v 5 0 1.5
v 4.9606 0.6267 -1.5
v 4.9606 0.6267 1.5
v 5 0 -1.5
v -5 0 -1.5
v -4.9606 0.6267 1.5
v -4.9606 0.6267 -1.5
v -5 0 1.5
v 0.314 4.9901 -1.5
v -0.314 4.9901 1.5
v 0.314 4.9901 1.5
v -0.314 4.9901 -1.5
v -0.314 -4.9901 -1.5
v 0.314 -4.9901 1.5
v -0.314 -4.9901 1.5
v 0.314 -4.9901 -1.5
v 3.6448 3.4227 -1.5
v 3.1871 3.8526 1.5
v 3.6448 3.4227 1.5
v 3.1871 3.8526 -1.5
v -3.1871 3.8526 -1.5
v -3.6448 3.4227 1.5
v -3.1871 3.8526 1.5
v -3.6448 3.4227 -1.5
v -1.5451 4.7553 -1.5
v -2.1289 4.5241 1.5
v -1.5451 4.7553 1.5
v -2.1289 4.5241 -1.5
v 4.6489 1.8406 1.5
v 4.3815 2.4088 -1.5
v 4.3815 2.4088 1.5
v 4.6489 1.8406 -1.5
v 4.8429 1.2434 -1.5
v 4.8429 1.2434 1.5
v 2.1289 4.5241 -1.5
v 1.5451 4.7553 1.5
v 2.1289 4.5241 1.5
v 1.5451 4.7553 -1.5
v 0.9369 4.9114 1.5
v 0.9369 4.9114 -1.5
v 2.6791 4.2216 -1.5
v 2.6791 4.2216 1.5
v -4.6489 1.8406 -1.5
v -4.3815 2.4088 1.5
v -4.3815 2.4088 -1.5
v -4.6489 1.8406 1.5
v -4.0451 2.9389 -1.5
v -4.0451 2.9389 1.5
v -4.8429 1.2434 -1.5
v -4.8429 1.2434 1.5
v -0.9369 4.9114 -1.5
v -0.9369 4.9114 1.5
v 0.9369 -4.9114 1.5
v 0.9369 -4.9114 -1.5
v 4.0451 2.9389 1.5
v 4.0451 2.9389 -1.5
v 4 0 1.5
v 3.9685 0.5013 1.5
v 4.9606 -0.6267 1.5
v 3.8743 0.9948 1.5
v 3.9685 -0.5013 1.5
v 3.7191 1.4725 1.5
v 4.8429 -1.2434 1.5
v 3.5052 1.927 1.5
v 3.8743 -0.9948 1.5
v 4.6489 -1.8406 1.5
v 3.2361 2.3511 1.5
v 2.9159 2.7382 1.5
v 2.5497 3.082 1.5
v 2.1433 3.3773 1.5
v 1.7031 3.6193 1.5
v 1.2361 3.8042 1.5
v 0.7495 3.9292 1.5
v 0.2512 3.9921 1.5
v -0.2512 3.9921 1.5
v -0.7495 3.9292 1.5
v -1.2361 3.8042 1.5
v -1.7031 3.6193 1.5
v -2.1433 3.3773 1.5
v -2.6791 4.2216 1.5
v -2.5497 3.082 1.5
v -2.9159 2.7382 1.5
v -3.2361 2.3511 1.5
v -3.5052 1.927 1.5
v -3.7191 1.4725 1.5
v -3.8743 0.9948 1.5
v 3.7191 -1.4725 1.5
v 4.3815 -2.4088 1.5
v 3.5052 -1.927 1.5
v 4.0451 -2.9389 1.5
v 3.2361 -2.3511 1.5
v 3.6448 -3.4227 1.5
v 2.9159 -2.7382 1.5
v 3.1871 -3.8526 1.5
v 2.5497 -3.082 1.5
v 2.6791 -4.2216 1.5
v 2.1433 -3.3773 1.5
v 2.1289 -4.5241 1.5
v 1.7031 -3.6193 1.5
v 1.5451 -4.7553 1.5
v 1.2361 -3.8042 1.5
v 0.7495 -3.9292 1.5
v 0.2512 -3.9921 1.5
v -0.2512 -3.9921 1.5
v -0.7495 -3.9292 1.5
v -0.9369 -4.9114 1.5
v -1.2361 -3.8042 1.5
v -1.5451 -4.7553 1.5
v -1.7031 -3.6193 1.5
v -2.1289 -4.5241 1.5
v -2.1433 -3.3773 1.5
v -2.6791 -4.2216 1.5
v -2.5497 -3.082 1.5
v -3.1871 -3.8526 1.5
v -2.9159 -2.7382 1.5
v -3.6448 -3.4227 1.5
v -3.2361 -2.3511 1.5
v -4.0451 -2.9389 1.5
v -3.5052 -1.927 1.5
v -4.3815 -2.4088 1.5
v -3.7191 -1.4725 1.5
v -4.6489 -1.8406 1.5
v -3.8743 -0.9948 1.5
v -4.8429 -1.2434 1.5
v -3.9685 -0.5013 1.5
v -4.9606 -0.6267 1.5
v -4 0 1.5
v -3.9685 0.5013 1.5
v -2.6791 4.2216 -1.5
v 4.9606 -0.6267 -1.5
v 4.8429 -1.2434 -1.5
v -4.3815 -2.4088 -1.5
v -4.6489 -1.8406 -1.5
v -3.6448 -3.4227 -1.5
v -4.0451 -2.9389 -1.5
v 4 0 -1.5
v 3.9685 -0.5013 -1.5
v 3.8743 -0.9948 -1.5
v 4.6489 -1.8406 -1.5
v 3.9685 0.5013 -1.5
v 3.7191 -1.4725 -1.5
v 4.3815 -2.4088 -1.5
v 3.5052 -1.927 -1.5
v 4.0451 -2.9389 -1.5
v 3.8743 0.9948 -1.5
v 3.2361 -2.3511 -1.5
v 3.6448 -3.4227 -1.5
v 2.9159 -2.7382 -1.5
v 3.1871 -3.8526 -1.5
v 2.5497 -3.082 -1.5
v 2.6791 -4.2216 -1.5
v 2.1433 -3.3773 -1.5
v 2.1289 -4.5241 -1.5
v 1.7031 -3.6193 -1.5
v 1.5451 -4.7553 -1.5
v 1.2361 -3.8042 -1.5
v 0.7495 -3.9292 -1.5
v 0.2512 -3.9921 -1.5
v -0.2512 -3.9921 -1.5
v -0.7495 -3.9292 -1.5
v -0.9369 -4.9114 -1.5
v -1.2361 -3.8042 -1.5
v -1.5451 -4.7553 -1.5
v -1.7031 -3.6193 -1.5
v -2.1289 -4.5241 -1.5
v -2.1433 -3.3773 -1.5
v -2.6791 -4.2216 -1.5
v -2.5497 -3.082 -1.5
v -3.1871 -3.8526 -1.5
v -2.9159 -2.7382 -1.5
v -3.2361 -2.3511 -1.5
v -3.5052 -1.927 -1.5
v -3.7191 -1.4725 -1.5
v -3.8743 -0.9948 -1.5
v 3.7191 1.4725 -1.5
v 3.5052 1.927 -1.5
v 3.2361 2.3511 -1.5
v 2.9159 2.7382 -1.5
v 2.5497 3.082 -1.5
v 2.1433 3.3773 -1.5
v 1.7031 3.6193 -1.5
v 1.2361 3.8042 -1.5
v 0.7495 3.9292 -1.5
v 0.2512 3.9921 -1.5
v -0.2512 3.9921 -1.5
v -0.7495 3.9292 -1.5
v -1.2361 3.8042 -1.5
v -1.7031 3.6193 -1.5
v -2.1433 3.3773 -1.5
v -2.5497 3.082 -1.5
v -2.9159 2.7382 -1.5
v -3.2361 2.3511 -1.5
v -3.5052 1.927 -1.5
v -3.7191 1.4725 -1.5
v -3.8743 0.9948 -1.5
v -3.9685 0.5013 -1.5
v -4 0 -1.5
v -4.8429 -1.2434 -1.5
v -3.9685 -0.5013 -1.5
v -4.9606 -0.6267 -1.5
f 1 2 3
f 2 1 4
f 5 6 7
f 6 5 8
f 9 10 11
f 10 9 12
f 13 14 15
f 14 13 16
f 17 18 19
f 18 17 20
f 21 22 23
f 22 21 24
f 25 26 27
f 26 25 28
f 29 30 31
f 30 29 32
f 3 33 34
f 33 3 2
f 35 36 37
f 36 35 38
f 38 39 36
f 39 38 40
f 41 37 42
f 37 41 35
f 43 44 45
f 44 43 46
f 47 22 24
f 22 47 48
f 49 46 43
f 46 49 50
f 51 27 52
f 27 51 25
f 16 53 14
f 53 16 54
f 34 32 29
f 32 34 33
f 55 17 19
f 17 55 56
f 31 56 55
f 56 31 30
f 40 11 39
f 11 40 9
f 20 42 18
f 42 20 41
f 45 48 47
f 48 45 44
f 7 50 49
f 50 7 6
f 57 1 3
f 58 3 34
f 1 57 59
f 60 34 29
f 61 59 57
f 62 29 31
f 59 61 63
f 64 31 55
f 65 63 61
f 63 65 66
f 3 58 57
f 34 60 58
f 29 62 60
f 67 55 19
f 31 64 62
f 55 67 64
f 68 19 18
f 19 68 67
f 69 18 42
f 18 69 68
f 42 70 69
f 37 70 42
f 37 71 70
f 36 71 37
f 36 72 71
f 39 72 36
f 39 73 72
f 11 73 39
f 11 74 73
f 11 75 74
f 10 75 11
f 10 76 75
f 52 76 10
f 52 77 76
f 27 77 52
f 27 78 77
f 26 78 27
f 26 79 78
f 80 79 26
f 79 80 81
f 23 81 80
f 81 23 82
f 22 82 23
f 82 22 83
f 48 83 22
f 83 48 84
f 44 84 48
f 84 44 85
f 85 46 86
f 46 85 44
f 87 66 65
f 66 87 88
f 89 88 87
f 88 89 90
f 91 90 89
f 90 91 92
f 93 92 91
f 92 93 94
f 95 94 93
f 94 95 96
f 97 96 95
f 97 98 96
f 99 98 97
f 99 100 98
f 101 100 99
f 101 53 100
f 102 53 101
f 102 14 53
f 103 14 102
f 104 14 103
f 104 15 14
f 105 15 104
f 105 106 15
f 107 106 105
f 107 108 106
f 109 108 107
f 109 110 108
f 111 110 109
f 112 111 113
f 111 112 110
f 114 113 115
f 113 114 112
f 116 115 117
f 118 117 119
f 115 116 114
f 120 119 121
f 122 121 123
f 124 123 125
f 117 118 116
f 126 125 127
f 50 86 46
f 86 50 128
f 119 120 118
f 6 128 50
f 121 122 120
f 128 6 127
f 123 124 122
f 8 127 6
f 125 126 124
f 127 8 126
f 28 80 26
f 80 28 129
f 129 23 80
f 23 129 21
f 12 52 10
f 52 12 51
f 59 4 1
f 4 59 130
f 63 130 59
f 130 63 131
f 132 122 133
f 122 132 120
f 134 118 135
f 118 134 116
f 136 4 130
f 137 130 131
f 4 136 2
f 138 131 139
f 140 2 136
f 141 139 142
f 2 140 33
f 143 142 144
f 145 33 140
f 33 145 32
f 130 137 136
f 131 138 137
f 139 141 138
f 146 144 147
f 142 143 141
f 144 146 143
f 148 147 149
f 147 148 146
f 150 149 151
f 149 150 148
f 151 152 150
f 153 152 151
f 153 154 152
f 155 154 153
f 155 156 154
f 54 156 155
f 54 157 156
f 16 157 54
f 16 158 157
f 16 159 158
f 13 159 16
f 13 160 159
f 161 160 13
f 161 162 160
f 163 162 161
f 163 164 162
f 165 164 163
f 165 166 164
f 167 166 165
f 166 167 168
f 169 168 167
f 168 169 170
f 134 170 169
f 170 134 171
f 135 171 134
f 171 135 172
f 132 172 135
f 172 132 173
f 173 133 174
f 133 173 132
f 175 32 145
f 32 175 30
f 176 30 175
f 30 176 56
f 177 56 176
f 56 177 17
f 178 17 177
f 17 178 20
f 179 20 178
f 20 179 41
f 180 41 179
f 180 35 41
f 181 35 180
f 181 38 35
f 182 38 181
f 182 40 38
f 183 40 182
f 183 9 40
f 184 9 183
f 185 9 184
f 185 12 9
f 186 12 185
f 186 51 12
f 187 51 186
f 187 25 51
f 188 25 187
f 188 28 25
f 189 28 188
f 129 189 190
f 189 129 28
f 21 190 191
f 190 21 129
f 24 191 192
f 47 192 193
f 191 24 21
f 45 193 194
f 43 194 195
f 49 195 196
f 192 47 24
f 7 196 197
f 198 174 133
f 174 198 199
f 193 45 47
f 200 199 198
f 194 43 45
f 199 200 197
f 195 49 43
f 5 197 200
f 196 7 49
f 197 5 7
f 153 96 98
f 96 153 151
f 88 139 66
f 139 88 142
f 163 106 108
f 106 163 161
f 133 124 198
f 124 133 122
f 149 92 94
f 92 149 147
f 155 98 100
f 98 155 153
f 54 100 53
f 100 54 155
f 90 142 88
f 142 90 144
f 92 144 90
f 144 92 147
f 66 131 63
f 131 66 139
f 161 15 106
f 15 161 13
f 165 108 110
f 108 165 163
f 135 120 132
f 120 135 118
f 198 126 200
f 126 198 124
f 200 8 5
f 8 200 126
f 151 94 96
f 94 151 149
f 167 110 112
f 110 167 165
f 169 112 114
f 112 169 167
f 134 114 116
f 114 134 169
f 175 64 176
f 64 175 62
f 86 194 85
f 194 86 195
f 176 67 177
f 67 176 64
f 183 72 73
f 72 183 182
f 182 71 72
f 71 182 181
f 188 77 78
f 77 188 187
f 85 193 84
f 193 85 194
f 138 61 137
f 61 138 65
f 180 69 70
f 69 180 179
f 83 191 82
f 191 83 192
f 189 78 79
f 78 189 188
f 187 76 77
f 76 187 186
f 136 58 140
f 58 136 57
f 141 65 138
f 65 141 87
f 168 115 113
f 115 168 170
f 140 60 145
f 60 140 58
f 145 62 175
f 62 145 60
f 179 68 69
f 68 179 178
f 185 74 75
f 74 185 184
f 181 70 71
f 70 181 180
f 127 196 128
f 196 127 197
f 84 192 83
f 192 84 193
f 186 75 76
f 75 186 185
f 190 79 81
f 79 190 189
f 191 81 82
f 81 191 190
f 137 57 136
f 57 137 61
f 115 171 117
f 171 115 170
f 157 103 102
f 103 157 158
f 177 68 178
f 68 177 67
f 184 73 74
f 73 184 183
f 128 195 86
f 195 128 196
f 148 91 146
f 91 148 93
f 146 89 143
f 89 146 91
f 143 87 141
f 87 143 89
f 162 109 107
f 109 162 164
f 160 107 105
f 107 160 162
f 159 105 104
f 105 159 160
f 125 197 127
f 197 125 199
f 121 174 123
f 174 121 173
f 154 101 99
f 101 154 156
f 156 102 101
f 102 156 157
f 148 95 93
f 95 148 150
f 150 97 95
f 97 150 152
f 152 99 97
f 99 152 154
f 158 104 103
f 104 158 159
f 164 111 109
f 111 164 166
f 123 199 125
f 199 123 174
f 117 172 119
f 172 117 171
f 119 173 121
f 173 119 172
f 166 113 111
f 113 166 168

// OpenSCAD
$fn = 50;


difference() {
	union() {
		translate(v = [0, 0, -1.5000000000]) {
			cylinder(h = 3, r = 5.0000000000);
		}
	}
	union() {
		translate(v = [0, 0, -100.0000000000]) {
			cylinder(h = 200, r = 4);
		}
	}
}
